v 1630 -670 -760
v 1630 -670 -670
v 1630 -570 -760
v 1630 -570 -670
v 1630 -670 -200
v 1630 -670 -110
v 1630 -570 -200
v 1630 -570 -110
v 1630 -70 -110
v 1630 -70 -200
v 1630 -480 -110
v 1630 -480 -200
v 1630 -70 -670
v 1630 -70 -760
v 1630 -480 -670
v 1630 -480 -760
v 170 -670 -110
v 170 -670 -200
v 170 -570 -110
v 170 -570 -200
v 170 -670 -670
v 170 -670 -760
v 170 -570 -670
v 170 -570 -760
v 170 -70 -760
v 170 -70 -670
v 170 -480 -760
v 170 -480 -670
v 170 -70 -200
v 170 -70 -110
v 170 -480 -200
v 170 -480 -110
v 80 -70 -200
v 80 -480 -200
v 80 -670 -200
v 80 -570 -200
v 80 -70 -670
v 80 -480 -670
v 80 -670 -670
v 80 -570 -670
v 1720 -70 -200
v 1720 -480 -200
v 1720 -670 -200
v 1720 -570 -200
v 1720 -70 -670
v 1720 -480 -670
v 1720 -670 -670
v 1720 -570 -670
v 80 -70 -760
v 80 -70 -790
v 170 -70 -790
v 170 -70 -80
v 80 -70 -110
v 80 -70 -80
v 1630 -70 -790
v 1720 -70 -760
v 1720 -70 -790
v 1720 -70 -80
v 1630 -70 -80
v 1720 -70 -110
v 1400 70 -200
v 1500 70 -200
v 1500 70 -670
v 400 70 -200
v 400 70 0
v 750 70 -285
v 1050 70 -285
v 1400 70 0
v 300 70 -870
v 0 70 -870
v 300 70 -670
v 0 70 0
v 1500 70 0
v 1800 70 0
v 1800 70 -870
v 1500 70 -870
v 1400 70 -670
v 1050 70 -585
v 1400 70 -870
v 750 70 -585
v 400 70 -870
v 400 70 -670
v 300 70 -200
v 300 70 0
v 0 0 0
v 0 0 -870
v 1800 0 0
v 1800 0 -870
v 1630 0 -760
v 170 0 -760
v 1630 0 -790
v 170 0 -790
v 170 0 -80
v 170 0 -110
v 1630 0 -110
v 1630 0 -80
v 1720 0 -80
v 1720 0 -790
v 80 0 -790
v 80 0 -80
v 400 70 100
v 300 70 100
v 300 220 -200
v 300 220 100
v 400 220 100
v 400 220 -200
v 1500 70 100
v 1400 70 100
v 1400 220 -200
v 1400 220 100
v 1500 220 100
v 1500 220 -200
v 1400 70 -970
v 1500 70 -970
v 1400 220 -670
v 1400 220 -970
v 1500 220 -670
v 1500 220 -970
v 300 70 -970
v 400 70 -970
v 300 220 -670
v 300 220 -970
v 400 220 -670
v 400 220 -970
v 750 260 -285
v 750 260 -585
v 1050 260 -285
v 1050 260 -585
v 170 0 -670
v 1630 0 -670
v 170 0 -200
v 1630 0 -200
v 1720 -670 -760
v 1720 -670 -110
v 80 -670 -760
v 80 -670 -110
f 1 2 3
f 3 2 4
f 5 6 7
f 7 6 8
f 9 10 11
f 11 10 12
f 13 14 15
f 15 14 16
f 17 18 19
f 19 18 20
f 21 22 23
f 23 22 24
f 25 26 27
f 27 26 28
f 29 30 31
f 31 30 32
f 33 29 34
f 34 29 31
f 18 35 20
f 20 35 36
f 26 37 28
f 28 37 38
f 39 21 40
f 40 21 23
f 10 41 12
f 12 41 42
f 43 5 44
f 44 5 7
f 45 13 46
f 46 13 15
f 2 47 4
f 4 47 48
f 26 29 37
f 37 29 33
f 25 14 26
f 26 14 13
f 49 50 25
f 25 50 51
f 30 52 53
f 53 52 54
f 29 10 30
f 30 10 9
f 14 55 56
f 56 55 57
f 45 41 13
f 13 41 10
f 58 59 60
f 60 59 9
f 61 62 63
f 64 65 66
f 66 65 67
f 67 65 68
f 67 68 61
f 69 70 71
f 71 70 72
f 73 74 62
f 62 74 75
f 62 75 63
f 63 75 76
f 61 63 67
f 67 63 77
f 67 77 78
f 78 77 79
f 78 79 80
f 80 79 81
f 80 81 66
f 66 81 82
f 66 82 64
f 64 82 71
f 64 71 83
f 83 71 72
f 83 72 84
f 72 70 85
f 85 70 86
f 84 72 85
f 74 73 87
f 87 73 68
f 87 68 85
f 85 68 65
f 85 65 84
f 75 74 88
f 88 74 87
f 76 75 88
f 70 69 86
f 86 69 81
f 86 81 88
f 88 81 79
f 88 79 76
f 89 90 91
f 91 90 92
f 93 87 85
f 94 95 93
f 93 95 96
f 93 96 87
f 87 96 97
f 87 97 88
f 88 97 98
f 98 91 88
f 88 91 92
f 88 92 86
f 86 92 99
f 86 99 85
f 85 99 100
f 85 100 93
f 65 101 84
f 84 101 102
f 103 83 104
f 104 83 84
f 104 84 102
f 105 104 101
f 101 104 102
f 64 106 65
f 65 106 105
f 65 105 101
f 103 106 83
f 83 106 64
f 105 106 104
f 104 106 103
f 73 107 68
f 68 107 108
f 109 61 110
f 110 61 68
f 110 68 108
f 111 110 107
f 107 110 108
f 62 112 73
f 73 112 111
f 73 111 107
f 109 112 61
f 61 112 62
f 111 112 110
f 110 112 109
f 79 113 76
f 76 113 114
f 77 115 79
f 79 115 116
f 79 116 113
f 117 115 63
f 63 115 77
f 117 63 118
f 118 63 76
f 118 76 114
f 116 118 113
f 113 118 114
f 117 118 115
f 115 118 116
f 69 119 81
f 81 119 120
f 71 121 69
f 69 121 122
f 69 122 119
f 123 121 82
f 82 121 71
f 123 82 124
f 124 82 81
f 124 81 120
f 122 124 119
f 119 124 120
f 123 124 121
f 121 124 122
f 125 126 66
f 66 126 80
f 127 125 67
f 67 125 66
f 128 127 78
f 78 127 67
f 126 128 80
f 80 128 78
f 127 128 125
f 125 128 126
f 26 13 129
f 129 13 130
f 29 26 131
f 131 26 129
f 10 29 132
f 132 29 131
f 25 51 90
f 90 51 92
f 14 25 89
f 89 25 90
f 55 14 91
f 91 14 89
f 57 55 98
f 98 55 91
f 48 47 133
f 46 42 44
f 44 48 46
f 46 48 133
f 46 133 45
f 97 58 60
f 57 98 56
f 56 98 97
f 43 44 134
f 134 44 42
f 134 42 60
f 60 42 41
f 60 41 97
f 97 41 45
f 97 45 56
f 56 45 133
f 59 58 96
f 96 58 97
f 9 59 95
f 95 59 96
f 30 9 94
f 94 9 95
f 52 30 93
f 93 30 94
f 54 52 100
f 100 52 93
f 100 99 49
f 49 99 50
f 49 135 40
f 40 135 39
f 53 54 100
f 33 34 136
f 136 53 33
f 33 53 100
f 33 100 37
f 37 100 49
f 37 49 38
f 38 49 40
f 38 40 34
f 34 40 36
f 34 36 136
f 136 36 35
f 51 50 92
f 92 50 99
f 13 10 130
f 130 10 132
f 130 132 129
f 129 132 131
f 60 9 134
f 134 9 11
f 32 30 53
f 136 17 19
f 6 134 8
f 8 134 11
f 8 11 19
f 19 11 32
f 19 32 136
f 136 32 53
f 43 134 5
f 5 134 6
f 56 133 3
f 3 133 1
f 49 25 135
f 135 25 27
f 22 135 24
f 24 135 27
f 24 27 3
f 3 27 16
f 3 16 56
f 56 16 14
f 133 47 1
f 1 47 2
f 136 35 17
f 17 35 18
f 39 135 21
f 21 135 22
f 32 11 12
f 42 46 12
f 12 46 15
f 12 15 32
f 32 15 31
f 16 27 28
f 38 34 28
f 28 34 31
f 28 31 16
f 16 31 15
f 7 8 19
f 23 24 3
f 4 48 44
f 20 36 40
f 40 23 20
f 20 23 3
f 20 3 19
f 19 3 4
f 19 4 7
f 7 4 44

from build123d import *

# Parameters (mm, degrees)
SKETCH_1_W      = 1800
SKETCH_1_H      = 870
EXTRUDE_1_DEPTH = 70
SKETCH_2_W      = 100
SKETCH_2_H      = 300
EXTRUDE_2_DEPTH = 150
SKETCH_3_W      = 300
SKETCH_3_H      = 300
EXTRUDE_3_DEPTH = 190
SKETCH_4_W      = 90
SKETCH_4_H      = 710
SKETCH_4_W_2    = 1460
SKETCH_4_H_2    = 90
EXTRUDE_4_DEPTH = 70
SKETCH_5_W      = 90
SKETCH_5_H      = 90
EXTRUDE_5_DEPTH = 600
EXTRUDE_6_REACH = 2071.251
SKETCH_6_W      = 90
SKETCH_6_H      = 90
EXTRUDE_7_REACH = 2013.641
SKETCH_7_W      = 650
SKETCH_7_H      = 90


with BuildPart() as part:
    # ｽｹｯﾁ1 → ﾎﾞｽ - 押し出し1 (new body)
    with BuildSketch(Plane(origin=(0, 0, 0), x_dir=(1, 0, 0), z_dir=(0, 1, 0))):
        with Locations((900, 435)):
            Rectangle(SKETCH_1_W, SKETCH_1_H)
    extrude(amount=EXTRUDE_1_DEPTH)

    # ｽｹｯﾁ2 → ﾎﾞｽ - 押し出し2 (add)
    with BuildSketch(Plane(origin=(0, 70, 0), x_dir=(1, 0, 0), z_dir=(0, 1, 0))):
        with Locations((350, 50)):
            Rectangle(SKETCH_2_W, SKETCH_2_H)
        with Locations((1450, 50)):
            Rectangle(SKETCH_2_W, SKETCH_2_H)
        with Locations((1450, 820)):
            Rectangle(SKETCH_2_W, SKETCH_2_H)
        with Locations((350, 820)):
            Rectangle(SKETCH_2_W, SKETCH_2_H)
    extrude(amount=EXTRUDE_2_DEPTH)

    # ｽｹｯﾁ3 → ﾎﾞｽ - 押し出し3 (add)
    with BuildSketch(Plane(origin=(0, 70, 0), x_dir=(1, 0, 0), z_dir=(0, 1, 0))):
        with Locations((900, 435)):
            Rectangle(SKETCH_3_W, SKETCH_3_H)
    extrude(amount=EXTRUDE_3_DEPTH)

    # ｽｹｯﾁ4 → ﾎﾞｽ - 押し出し4 (add)
    with BuildSketch(Plane(origin=(0, 0, 0), x_dir=(-1, 0, 0), z_dir=(0, -1, 0))):
        with Locations((-1675, 435)):
            Rectangle(SKETCH_4_W, SKETCH_4_H)
        with Locations((-900, 715)):
            Rectangle(SKETCH_4_W_2, SKETCH_4_H_2)
        with Locations((-900, 155)):
            Rectangle(SKETCH_4_W_2, SKETCH_4_H_2)
        with Locations((-125, 435)):
            Rectangle(SKETCH_4_W, SKETCH_4_H)
    extrude(amount=EXTRUDE_4_DEPTH)

    # ｽｹｯﾁ5 → ﾎﾞｽ - 押し出し5 (add)
    with BuildSketch(Plane(origin=(0, -70, 0), x_dir=(-1, 0, 0), z_dir=(0, -1, 0))):
        with Locations((-1675, 155)):
            Rectangle(SKETCH_5_W, SKETCH_5_H)
        with Locations((-1675, 715)):
            Rectangle(SKETCH_5_W, SKETCH_5_H)
        with Locations((-125, 155)):
            Rectangle(SKETCH_5_W, SKETCH_5_H)
        with Locations((-125, 715)):
            Rectangle(SKETCH_5_W, SKETCH_5_H)
    extrude(amount=EXTRUDE_5_DEPTH)

    # ｽｹｯﾁ6 → ﾎﾞｽ - 押し出し6 (add, up to next)
    with BuildSketch(Plane(origin=(0, 0, -200), x_dir=(-1, 0, 0), z_dir=(0, 0, -1)), mode=Mode.PRIVATE) as extrude_6_sk1:
        with Locations((-1675, -525)):
            Rectangle(SKETCH_6_W, SKETCH_6_H)
    extrude_6_tool1 = extrude(extrude_6_sk1.sketch, amount=EXTRUDE_6_REACH, mode=Mode.PRIVATE) - part.part
    # ｽｹｯﾁ6 → ﾎﾞｽ - 押し出し6 (add, up to next)
    with BuildSketch(Plane(origin=(0, 0, -200), x_dir=(-1, 0, 0), z_dir=(0, 0, -1)), mode=Mode.PRIVATE) as extrude_6_sk2:
        with Locations((-125, -525)):
            Rectangle(SKETCH_6_W, SKETCH_6_H)
    extrude_6_tool2 = extrude(extrude_6_sk2.sketch, amount=EXTRUDE_6_REACH, mode=Mode.PRIVATE) - part.part
    add(extrude_6_tool1.solids().sort_by_distance((1675, -525, -200))[0])
    add(extrude_6_tool2.solids().sort_by_distance((125, -525, -200))[0])

    # ｽｹｯﾁ7 → ﾎﾞｽ - 押し出し7 (add, up to next)
    with BuildSketch(Plane.ZY.offset(-1630), mode=Mode.PRIVATE) as extrude_7_sk1:
        with Locations((-435, -525)):
            Rectangle(SKETCH_7_W, SKETCH_7_H)
    extrude_7_tool1 = extrude(extrude_7_sk1.sketch, amount=EXTRUDE_7_REACH, mode=Mode.PRIVATE) - part.part
    add(extrude_7_tool1.solids().sort_by_distance((1630, -525, -435))[0])


solid = part.part
